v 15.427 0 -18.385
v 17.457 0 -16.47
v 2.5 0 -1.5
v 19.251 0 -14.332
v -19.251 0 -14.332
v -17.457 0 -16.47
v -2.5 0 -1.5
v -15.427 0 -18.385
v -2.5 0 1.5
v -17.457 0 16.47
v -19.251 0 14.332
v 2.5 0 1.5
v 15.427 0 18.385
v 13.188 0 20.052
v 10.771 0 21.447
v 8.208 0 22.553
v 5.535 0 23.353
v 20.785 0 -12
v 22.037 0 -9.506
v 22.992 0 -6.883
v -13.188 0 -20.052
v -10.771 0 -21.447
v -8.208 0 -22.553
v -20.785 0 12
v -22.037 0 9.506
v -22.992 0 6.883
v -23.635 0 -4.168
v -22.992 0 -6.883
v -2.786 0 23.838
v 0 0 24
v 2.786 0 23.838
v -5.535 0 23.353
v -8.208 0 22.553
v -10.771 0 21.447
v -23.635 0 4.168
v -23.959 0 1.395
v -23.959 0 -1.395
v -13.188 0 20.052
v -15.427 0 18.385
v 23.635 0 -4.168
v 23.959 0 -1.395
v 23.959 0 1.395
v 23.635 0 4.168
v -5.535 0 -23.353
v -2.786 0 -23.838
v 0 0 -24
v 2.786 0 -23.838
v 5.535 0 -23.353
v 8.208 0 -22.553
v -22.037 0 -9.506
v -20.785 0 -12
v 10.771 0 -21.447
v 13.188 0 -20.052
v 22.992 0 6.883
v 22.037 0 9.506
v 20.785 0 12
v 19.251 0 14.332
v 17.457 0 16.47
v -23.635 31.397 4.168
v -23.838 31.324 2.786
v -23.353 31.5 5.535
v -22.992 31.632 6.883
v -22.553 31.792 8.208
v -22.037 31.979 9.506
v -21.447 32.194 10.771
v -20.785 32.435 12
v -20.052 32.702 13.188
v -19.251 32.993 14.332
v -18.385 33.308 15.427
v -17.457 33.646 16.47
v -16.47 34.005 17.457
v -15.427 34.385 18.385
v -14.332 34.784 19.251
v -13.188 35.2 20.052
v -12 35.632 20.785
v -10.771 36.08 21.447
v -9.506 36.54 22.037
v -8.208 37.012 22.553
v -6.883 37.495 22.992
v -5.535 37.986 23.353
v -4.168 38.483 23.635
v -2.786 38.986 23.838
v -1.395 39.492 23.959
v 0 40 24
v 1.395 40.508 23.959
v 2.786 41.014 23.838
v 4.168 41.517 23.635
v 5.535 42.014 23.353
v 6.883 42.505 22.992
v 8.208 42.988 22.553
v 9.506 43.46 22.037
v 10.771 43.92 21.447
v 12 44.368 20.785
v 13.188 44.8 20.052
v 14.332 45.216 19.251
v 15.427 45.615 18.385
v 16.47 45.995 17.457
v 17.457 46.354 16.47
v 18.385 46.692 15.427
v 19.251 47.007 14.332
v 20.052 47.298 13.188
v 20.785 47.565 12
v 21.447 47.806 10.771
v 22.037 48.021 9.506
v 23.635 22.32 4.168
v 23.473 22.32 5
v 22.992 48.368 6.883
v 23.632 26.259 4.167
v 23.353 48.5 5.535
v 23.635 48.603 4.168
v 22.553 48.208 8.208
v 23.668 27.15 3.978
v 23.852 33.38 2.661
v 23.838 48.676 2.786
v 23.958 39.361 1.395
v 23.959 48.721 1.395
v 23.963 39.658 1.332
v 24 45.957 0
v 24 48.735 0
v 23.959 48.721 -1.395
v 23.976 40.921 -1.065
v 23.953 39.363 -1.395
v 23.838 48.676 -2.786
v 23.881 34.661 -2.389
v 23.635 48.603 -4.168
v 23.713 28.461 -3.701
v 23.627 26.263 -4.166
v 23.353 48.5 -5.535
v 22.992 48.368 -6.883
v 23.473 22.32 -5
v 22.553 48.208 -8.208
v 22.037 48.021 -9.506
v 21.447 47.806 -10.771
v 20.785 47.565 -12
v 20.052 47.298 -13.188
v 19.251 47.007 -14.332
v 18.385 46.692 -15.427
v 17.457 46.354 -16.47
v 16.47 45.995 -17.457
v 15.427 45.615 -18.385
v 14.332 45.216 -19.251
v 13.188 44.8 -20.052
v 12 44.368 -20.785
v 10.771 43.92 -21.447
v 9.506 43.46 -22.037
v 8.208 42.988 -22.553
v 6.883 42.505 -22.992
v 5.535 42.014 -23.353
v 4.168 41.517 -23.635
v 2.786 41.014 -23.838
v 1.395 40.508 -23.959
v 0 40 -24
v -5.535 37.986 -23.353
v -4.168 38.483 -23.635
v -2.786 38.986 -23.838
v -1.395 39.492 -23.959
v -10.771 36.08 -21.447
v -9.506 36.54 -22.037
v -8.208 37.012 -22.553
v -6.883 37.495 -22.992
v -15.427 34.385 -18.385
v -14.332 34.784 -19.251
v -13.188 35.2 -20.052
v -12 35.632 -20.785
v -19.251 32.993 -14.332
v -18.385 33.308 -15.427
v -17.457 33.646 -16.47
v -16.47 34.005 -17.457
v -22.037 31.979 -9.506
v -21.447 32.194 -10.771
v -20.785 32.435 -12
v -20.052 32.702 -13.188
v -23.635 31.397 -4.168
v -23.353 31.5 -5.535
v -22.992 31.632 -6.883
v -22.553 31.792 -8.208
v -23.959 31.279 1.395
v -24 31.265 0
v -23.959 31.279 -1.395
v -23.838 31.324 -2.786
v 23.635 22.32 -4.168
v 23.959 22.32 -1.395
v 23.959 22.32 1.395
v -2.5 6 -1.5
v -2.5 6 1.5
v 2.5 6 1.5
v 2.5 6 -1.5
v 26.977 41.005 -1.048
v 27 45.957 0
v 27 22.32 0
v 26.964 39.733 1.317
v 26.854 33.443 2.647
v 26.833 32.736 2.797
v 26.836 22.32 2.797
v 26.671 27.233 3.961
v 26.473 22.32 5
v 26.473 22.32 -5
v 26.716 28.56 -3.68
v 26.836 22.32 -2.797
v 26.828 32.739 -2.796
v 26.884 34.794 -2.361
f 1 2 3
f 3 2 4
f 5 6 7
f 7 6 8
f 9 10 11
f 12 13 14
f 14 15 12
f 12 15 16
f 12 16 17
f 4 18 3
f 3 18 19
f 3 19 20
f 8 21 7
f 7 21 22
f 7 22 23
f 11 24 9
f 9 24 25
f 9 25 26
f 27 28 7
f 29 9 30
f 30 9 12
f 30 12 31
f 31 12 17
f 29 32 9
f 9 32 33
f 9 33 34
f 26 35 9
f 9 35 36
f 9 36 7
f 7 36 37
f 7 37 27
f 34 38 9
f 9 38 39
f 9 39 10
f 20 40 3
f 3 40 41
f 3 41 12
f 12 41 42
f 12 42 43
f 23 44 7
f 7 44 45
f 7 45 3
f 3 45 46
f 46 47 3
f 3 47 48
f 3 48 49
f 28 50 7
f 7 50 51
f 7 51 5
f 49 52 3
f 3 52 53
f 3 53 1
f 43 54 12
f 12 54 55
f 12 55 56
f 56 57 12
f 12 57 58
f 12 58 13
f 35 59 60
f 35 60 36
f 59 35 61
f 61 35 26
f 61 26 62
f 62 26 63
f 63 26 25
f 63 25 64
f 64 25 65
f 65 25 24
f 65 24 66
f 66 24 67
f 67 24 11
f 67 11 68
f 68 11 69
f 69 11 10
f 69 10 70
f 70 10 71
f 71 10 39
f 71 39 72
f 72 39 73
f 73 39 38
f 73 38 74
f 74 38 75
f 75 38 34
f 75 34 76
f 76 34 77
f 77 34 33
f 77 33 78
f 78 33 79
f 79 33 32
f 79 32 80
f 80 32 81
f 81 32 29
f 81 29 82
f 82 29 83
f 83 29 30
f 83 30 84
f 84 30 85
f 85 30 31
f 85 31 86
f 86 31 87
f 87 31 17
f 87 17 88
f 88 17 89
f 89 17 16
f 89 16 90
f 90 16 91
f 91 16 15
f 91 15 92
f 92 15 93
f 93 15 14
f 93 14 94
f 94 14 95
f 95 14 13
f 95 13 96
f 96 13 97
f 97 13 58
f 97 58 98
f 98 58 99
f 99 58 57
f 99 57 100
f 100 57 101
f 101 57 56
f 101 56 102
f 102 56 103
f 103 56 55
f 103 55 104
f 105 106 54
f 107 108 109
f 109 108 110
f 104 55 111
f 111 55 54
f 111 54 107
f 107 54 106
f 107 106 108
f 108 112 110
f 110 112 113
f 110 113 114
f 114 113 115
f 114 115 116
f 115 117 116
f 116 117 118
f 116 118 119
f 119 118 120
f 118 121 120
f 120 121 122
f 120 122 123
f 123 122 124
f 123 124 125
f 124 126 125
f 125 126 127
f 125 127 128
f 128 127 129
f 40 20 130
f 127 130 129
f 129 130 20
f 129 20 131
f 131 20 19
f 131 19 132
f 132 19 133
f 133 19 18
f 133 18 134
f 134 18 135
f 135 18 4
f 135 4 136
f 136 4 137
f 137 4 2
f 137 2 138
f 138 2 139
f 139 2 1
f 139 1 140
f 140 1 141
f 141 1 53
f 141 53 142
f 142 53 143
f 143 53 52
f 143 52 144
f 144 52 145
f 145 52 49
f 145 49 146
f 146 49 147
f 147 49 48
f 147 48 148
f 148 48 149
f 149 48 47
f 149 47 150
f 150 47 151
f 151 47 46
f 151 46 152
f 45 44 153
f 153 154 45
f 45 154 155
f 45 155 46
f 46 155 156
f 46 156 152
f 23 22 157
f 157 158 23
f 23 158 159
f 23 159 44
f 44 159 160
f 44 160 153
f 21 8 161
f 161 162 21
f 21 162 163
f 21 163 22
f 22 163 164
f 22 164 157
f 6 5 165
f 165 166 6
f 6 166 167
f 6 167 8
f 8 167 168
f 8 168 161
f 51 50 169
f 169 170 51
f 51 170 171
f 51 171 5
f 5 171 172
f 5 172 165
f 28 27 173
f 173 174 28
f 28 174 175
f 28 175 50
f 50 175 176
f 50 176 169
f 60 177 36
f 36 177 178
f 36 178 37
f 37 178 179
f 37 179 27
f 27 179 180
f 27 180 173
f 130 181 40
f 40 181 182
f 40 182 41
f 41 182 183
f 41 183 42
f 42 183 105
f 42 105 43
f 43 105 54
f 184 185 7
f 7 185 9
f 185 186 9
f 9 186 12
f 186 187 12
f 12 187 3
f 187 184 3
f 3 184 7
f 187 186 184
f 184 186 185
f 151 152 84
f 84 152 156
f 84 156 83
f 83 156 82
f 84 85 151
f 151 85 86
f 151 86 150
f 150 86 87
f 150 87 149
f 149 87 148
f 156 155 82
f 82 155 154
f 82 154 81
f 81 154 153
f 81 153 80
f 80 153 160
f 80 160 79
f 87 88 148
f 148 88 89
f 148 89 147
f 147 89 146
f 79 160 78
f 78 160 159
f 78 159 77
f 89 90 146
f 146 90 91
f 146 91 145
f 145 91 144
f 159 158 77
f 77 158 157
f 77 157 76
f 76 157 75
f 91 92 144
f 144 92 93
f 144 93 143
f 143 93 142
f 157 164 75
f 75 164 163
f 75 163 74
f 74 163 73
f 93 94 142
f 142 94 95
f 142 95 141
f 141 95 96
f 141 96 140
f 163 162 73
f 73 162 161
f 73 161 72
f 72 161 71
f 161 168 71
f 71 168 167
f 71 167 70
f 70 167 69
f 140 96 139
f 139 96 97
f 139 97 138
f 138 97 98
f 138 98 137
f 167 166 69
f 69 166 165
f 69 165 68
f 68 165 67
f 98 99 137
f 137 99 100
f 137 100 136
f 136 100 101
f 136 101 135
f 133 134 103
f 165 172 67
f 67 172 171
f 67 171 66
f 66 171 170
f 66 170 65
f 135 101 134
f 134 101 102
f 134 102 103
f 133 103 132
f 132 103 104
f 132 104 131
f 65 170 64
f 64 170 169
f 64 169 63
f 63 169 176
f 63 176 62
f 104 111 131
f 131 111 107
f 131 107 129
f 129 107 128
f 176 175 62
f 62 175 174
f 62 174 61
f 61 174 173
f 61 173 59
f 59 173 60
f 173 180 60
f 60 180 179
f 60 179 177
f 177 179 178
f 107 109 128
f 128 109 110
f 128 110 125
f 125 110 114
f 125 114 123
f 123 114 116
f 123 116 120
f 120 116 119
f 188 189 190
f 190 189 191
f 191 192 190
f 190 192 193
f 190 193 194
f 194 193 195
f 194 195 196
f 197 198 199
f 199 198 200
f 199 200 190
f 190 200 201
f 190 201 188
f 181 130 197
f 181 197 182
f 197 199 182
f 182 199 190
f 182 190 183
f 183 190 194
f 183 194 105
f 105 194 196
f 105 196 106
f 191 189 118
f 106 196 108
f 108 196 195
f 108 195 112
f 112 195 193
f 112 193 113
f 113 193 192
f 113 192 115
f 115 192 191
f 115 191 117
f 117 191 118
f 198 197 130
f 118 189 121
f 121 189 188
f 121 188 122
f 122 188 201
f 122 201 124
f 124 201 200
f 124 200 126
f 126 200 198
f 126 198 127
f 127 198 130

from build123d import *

# Parameters (mm, degrees)
SKETCH1_R                  = 24
SKETCH1_W                  = 5
SKETCH1_H                  = 3
BOSS_EXTRUDE1_DEPTH        = 6
BOSS_EXTRUDE4_OUTLINE_R    = 24
BOSS_EXTRUDE4_DEPTH        = 25.264714378
BOSS_EXTRUDE4_START        = 31.264714378
BOSS_EXTRUDE4_2_OUTLINE_R  = 24
BOSS_EXTRUDE4_2_DEPTH      = 17.470571244
BOSS_EXTRUDE4_START_2      = -55
BOSS_EXTRUDE4_3_OUTLINE_W  = 54
BOSS_EXTRUDE4_3_OUTLINE_H  = 50
BOSS_EXTRUDE4_3_DEPTH      = 17.412295169
BOSS_EXTRUDE5_REACH        = 64.39
BOSS_EXTRUDE5_START_RADIUS = 24
BOSS_EXTRUDE5_END_RADIUS   = 24


with BuildPart() as part:
    # Sketch1 → Boss-Extrude1 (new body)
    with BuildSketch(Plane(origin=(0, 0, 0), x_dir=(1, 0, 0), z_dir=(0, 1, 0))):
        with Locations(Location((0, 0, 0), (0, 0, 270))):
            Circle(SKETCH1_R)
        Rectangle(SKETCH1_W, SKETCH1_H, mode=Mode.SUBTRACT)
    extrude(amount=BOSS_EXTRUDE1_DEPTH)

    # Boss-Extrude4: read off the stored shape, not the designer's step
    # Boss-Extrude4 outline → Boss-Extrude4 (add)
    with BuildSketch(Plane(origin=(0, 6, 0), x_dir=(1, 0, 0), z_dir=(0, 1, 0))):
        Circle(BOSS_EXTRUDE4_OUTLINE_R)
    extrude(amount=BOSS_EXTRUDE4_DEPTH)

    # Boss-Extrude4 2 outline → Boss-Extrude4 2 (add)
    with BuildSketch(Plane(origin=(0, 0, 0), x_dir=(1, 0, 0), z_dir=(0, 1, 0)).offset(BOSS_EXTRUDE4_START)):
        Circle(BOSS_EXTRUDE4_2_OUTLINE_R)
    extrude(amount=BOSS_EXTRUDE4_2_DEPTH)

    # Boss-Extrude4 3 outline → Boss-Extrude4 3 (cut)
    with BuildSketch(Plane(origin=(0, 0, 0), x_dir=(0.9396926207859082, 0.3420201433256691, 0), z_dir=(0.3420201433256691, -0.9396926207859083, 0)).offset(BOSS_EXTRUDE4_START_2)):
        with Locations((14, 0)):
            Rectangle(BOSS_EXTRUDE4_3_OUTLINE_W, BOSS_EXTRUDE4_3_OUTLINE_H)
    extrude(amount=BOSS_EXTRUDE4_3_DEPTH, mode=Mode.SUBTRACT)

    # Boss-Extrude5: from a cylinder face, 64.39 long prism both ways, kept between that surface and its translate by the depth
    boss_extrude5_start = Plane(origin=(0, 30.19918, 0), z_dir=(0, -1, 0)) * Cylinder(BOSS_EXTRUDE5_START_RADIUS, 177.78, mode=Mode.PRIVATE)
    boss_extrude5_end = Plane(origin=(3, 30.19918, 0), z_dir=(0, -1, 0)) * Cylinder(BOSS_EXTRUDE5_END_RADIUS, 177.78, mode=Mode.PRIVATE)
    # Sketch5 → Boss-Extrude5 (add, from a surface)
    with BuildSketch(Plane(origin=(0, 0, 0), x_dir=(0, 0, -1), z_dir=(1, 0, 0)), mode=Mode.PRIVATE) as boss_extrude5_sk1:
        Polygon((0, 45.957345566), (-5, 22.320096474), (5, 22.320096474), align=None)
    boss_extrude5_tool1 = extrude(boss_extrude5_sk1.sketch, amount=BOSS_EXTRUDE5_REACH, both=True, mode=Mode.PRIVATE)
    add(((boss_extrude5_tool1 - boss_extrude5_start) & boss_extrude5_end).solids().sort_by_distance((25.236695, 30.19918, 0))[0])


solid = part.part
